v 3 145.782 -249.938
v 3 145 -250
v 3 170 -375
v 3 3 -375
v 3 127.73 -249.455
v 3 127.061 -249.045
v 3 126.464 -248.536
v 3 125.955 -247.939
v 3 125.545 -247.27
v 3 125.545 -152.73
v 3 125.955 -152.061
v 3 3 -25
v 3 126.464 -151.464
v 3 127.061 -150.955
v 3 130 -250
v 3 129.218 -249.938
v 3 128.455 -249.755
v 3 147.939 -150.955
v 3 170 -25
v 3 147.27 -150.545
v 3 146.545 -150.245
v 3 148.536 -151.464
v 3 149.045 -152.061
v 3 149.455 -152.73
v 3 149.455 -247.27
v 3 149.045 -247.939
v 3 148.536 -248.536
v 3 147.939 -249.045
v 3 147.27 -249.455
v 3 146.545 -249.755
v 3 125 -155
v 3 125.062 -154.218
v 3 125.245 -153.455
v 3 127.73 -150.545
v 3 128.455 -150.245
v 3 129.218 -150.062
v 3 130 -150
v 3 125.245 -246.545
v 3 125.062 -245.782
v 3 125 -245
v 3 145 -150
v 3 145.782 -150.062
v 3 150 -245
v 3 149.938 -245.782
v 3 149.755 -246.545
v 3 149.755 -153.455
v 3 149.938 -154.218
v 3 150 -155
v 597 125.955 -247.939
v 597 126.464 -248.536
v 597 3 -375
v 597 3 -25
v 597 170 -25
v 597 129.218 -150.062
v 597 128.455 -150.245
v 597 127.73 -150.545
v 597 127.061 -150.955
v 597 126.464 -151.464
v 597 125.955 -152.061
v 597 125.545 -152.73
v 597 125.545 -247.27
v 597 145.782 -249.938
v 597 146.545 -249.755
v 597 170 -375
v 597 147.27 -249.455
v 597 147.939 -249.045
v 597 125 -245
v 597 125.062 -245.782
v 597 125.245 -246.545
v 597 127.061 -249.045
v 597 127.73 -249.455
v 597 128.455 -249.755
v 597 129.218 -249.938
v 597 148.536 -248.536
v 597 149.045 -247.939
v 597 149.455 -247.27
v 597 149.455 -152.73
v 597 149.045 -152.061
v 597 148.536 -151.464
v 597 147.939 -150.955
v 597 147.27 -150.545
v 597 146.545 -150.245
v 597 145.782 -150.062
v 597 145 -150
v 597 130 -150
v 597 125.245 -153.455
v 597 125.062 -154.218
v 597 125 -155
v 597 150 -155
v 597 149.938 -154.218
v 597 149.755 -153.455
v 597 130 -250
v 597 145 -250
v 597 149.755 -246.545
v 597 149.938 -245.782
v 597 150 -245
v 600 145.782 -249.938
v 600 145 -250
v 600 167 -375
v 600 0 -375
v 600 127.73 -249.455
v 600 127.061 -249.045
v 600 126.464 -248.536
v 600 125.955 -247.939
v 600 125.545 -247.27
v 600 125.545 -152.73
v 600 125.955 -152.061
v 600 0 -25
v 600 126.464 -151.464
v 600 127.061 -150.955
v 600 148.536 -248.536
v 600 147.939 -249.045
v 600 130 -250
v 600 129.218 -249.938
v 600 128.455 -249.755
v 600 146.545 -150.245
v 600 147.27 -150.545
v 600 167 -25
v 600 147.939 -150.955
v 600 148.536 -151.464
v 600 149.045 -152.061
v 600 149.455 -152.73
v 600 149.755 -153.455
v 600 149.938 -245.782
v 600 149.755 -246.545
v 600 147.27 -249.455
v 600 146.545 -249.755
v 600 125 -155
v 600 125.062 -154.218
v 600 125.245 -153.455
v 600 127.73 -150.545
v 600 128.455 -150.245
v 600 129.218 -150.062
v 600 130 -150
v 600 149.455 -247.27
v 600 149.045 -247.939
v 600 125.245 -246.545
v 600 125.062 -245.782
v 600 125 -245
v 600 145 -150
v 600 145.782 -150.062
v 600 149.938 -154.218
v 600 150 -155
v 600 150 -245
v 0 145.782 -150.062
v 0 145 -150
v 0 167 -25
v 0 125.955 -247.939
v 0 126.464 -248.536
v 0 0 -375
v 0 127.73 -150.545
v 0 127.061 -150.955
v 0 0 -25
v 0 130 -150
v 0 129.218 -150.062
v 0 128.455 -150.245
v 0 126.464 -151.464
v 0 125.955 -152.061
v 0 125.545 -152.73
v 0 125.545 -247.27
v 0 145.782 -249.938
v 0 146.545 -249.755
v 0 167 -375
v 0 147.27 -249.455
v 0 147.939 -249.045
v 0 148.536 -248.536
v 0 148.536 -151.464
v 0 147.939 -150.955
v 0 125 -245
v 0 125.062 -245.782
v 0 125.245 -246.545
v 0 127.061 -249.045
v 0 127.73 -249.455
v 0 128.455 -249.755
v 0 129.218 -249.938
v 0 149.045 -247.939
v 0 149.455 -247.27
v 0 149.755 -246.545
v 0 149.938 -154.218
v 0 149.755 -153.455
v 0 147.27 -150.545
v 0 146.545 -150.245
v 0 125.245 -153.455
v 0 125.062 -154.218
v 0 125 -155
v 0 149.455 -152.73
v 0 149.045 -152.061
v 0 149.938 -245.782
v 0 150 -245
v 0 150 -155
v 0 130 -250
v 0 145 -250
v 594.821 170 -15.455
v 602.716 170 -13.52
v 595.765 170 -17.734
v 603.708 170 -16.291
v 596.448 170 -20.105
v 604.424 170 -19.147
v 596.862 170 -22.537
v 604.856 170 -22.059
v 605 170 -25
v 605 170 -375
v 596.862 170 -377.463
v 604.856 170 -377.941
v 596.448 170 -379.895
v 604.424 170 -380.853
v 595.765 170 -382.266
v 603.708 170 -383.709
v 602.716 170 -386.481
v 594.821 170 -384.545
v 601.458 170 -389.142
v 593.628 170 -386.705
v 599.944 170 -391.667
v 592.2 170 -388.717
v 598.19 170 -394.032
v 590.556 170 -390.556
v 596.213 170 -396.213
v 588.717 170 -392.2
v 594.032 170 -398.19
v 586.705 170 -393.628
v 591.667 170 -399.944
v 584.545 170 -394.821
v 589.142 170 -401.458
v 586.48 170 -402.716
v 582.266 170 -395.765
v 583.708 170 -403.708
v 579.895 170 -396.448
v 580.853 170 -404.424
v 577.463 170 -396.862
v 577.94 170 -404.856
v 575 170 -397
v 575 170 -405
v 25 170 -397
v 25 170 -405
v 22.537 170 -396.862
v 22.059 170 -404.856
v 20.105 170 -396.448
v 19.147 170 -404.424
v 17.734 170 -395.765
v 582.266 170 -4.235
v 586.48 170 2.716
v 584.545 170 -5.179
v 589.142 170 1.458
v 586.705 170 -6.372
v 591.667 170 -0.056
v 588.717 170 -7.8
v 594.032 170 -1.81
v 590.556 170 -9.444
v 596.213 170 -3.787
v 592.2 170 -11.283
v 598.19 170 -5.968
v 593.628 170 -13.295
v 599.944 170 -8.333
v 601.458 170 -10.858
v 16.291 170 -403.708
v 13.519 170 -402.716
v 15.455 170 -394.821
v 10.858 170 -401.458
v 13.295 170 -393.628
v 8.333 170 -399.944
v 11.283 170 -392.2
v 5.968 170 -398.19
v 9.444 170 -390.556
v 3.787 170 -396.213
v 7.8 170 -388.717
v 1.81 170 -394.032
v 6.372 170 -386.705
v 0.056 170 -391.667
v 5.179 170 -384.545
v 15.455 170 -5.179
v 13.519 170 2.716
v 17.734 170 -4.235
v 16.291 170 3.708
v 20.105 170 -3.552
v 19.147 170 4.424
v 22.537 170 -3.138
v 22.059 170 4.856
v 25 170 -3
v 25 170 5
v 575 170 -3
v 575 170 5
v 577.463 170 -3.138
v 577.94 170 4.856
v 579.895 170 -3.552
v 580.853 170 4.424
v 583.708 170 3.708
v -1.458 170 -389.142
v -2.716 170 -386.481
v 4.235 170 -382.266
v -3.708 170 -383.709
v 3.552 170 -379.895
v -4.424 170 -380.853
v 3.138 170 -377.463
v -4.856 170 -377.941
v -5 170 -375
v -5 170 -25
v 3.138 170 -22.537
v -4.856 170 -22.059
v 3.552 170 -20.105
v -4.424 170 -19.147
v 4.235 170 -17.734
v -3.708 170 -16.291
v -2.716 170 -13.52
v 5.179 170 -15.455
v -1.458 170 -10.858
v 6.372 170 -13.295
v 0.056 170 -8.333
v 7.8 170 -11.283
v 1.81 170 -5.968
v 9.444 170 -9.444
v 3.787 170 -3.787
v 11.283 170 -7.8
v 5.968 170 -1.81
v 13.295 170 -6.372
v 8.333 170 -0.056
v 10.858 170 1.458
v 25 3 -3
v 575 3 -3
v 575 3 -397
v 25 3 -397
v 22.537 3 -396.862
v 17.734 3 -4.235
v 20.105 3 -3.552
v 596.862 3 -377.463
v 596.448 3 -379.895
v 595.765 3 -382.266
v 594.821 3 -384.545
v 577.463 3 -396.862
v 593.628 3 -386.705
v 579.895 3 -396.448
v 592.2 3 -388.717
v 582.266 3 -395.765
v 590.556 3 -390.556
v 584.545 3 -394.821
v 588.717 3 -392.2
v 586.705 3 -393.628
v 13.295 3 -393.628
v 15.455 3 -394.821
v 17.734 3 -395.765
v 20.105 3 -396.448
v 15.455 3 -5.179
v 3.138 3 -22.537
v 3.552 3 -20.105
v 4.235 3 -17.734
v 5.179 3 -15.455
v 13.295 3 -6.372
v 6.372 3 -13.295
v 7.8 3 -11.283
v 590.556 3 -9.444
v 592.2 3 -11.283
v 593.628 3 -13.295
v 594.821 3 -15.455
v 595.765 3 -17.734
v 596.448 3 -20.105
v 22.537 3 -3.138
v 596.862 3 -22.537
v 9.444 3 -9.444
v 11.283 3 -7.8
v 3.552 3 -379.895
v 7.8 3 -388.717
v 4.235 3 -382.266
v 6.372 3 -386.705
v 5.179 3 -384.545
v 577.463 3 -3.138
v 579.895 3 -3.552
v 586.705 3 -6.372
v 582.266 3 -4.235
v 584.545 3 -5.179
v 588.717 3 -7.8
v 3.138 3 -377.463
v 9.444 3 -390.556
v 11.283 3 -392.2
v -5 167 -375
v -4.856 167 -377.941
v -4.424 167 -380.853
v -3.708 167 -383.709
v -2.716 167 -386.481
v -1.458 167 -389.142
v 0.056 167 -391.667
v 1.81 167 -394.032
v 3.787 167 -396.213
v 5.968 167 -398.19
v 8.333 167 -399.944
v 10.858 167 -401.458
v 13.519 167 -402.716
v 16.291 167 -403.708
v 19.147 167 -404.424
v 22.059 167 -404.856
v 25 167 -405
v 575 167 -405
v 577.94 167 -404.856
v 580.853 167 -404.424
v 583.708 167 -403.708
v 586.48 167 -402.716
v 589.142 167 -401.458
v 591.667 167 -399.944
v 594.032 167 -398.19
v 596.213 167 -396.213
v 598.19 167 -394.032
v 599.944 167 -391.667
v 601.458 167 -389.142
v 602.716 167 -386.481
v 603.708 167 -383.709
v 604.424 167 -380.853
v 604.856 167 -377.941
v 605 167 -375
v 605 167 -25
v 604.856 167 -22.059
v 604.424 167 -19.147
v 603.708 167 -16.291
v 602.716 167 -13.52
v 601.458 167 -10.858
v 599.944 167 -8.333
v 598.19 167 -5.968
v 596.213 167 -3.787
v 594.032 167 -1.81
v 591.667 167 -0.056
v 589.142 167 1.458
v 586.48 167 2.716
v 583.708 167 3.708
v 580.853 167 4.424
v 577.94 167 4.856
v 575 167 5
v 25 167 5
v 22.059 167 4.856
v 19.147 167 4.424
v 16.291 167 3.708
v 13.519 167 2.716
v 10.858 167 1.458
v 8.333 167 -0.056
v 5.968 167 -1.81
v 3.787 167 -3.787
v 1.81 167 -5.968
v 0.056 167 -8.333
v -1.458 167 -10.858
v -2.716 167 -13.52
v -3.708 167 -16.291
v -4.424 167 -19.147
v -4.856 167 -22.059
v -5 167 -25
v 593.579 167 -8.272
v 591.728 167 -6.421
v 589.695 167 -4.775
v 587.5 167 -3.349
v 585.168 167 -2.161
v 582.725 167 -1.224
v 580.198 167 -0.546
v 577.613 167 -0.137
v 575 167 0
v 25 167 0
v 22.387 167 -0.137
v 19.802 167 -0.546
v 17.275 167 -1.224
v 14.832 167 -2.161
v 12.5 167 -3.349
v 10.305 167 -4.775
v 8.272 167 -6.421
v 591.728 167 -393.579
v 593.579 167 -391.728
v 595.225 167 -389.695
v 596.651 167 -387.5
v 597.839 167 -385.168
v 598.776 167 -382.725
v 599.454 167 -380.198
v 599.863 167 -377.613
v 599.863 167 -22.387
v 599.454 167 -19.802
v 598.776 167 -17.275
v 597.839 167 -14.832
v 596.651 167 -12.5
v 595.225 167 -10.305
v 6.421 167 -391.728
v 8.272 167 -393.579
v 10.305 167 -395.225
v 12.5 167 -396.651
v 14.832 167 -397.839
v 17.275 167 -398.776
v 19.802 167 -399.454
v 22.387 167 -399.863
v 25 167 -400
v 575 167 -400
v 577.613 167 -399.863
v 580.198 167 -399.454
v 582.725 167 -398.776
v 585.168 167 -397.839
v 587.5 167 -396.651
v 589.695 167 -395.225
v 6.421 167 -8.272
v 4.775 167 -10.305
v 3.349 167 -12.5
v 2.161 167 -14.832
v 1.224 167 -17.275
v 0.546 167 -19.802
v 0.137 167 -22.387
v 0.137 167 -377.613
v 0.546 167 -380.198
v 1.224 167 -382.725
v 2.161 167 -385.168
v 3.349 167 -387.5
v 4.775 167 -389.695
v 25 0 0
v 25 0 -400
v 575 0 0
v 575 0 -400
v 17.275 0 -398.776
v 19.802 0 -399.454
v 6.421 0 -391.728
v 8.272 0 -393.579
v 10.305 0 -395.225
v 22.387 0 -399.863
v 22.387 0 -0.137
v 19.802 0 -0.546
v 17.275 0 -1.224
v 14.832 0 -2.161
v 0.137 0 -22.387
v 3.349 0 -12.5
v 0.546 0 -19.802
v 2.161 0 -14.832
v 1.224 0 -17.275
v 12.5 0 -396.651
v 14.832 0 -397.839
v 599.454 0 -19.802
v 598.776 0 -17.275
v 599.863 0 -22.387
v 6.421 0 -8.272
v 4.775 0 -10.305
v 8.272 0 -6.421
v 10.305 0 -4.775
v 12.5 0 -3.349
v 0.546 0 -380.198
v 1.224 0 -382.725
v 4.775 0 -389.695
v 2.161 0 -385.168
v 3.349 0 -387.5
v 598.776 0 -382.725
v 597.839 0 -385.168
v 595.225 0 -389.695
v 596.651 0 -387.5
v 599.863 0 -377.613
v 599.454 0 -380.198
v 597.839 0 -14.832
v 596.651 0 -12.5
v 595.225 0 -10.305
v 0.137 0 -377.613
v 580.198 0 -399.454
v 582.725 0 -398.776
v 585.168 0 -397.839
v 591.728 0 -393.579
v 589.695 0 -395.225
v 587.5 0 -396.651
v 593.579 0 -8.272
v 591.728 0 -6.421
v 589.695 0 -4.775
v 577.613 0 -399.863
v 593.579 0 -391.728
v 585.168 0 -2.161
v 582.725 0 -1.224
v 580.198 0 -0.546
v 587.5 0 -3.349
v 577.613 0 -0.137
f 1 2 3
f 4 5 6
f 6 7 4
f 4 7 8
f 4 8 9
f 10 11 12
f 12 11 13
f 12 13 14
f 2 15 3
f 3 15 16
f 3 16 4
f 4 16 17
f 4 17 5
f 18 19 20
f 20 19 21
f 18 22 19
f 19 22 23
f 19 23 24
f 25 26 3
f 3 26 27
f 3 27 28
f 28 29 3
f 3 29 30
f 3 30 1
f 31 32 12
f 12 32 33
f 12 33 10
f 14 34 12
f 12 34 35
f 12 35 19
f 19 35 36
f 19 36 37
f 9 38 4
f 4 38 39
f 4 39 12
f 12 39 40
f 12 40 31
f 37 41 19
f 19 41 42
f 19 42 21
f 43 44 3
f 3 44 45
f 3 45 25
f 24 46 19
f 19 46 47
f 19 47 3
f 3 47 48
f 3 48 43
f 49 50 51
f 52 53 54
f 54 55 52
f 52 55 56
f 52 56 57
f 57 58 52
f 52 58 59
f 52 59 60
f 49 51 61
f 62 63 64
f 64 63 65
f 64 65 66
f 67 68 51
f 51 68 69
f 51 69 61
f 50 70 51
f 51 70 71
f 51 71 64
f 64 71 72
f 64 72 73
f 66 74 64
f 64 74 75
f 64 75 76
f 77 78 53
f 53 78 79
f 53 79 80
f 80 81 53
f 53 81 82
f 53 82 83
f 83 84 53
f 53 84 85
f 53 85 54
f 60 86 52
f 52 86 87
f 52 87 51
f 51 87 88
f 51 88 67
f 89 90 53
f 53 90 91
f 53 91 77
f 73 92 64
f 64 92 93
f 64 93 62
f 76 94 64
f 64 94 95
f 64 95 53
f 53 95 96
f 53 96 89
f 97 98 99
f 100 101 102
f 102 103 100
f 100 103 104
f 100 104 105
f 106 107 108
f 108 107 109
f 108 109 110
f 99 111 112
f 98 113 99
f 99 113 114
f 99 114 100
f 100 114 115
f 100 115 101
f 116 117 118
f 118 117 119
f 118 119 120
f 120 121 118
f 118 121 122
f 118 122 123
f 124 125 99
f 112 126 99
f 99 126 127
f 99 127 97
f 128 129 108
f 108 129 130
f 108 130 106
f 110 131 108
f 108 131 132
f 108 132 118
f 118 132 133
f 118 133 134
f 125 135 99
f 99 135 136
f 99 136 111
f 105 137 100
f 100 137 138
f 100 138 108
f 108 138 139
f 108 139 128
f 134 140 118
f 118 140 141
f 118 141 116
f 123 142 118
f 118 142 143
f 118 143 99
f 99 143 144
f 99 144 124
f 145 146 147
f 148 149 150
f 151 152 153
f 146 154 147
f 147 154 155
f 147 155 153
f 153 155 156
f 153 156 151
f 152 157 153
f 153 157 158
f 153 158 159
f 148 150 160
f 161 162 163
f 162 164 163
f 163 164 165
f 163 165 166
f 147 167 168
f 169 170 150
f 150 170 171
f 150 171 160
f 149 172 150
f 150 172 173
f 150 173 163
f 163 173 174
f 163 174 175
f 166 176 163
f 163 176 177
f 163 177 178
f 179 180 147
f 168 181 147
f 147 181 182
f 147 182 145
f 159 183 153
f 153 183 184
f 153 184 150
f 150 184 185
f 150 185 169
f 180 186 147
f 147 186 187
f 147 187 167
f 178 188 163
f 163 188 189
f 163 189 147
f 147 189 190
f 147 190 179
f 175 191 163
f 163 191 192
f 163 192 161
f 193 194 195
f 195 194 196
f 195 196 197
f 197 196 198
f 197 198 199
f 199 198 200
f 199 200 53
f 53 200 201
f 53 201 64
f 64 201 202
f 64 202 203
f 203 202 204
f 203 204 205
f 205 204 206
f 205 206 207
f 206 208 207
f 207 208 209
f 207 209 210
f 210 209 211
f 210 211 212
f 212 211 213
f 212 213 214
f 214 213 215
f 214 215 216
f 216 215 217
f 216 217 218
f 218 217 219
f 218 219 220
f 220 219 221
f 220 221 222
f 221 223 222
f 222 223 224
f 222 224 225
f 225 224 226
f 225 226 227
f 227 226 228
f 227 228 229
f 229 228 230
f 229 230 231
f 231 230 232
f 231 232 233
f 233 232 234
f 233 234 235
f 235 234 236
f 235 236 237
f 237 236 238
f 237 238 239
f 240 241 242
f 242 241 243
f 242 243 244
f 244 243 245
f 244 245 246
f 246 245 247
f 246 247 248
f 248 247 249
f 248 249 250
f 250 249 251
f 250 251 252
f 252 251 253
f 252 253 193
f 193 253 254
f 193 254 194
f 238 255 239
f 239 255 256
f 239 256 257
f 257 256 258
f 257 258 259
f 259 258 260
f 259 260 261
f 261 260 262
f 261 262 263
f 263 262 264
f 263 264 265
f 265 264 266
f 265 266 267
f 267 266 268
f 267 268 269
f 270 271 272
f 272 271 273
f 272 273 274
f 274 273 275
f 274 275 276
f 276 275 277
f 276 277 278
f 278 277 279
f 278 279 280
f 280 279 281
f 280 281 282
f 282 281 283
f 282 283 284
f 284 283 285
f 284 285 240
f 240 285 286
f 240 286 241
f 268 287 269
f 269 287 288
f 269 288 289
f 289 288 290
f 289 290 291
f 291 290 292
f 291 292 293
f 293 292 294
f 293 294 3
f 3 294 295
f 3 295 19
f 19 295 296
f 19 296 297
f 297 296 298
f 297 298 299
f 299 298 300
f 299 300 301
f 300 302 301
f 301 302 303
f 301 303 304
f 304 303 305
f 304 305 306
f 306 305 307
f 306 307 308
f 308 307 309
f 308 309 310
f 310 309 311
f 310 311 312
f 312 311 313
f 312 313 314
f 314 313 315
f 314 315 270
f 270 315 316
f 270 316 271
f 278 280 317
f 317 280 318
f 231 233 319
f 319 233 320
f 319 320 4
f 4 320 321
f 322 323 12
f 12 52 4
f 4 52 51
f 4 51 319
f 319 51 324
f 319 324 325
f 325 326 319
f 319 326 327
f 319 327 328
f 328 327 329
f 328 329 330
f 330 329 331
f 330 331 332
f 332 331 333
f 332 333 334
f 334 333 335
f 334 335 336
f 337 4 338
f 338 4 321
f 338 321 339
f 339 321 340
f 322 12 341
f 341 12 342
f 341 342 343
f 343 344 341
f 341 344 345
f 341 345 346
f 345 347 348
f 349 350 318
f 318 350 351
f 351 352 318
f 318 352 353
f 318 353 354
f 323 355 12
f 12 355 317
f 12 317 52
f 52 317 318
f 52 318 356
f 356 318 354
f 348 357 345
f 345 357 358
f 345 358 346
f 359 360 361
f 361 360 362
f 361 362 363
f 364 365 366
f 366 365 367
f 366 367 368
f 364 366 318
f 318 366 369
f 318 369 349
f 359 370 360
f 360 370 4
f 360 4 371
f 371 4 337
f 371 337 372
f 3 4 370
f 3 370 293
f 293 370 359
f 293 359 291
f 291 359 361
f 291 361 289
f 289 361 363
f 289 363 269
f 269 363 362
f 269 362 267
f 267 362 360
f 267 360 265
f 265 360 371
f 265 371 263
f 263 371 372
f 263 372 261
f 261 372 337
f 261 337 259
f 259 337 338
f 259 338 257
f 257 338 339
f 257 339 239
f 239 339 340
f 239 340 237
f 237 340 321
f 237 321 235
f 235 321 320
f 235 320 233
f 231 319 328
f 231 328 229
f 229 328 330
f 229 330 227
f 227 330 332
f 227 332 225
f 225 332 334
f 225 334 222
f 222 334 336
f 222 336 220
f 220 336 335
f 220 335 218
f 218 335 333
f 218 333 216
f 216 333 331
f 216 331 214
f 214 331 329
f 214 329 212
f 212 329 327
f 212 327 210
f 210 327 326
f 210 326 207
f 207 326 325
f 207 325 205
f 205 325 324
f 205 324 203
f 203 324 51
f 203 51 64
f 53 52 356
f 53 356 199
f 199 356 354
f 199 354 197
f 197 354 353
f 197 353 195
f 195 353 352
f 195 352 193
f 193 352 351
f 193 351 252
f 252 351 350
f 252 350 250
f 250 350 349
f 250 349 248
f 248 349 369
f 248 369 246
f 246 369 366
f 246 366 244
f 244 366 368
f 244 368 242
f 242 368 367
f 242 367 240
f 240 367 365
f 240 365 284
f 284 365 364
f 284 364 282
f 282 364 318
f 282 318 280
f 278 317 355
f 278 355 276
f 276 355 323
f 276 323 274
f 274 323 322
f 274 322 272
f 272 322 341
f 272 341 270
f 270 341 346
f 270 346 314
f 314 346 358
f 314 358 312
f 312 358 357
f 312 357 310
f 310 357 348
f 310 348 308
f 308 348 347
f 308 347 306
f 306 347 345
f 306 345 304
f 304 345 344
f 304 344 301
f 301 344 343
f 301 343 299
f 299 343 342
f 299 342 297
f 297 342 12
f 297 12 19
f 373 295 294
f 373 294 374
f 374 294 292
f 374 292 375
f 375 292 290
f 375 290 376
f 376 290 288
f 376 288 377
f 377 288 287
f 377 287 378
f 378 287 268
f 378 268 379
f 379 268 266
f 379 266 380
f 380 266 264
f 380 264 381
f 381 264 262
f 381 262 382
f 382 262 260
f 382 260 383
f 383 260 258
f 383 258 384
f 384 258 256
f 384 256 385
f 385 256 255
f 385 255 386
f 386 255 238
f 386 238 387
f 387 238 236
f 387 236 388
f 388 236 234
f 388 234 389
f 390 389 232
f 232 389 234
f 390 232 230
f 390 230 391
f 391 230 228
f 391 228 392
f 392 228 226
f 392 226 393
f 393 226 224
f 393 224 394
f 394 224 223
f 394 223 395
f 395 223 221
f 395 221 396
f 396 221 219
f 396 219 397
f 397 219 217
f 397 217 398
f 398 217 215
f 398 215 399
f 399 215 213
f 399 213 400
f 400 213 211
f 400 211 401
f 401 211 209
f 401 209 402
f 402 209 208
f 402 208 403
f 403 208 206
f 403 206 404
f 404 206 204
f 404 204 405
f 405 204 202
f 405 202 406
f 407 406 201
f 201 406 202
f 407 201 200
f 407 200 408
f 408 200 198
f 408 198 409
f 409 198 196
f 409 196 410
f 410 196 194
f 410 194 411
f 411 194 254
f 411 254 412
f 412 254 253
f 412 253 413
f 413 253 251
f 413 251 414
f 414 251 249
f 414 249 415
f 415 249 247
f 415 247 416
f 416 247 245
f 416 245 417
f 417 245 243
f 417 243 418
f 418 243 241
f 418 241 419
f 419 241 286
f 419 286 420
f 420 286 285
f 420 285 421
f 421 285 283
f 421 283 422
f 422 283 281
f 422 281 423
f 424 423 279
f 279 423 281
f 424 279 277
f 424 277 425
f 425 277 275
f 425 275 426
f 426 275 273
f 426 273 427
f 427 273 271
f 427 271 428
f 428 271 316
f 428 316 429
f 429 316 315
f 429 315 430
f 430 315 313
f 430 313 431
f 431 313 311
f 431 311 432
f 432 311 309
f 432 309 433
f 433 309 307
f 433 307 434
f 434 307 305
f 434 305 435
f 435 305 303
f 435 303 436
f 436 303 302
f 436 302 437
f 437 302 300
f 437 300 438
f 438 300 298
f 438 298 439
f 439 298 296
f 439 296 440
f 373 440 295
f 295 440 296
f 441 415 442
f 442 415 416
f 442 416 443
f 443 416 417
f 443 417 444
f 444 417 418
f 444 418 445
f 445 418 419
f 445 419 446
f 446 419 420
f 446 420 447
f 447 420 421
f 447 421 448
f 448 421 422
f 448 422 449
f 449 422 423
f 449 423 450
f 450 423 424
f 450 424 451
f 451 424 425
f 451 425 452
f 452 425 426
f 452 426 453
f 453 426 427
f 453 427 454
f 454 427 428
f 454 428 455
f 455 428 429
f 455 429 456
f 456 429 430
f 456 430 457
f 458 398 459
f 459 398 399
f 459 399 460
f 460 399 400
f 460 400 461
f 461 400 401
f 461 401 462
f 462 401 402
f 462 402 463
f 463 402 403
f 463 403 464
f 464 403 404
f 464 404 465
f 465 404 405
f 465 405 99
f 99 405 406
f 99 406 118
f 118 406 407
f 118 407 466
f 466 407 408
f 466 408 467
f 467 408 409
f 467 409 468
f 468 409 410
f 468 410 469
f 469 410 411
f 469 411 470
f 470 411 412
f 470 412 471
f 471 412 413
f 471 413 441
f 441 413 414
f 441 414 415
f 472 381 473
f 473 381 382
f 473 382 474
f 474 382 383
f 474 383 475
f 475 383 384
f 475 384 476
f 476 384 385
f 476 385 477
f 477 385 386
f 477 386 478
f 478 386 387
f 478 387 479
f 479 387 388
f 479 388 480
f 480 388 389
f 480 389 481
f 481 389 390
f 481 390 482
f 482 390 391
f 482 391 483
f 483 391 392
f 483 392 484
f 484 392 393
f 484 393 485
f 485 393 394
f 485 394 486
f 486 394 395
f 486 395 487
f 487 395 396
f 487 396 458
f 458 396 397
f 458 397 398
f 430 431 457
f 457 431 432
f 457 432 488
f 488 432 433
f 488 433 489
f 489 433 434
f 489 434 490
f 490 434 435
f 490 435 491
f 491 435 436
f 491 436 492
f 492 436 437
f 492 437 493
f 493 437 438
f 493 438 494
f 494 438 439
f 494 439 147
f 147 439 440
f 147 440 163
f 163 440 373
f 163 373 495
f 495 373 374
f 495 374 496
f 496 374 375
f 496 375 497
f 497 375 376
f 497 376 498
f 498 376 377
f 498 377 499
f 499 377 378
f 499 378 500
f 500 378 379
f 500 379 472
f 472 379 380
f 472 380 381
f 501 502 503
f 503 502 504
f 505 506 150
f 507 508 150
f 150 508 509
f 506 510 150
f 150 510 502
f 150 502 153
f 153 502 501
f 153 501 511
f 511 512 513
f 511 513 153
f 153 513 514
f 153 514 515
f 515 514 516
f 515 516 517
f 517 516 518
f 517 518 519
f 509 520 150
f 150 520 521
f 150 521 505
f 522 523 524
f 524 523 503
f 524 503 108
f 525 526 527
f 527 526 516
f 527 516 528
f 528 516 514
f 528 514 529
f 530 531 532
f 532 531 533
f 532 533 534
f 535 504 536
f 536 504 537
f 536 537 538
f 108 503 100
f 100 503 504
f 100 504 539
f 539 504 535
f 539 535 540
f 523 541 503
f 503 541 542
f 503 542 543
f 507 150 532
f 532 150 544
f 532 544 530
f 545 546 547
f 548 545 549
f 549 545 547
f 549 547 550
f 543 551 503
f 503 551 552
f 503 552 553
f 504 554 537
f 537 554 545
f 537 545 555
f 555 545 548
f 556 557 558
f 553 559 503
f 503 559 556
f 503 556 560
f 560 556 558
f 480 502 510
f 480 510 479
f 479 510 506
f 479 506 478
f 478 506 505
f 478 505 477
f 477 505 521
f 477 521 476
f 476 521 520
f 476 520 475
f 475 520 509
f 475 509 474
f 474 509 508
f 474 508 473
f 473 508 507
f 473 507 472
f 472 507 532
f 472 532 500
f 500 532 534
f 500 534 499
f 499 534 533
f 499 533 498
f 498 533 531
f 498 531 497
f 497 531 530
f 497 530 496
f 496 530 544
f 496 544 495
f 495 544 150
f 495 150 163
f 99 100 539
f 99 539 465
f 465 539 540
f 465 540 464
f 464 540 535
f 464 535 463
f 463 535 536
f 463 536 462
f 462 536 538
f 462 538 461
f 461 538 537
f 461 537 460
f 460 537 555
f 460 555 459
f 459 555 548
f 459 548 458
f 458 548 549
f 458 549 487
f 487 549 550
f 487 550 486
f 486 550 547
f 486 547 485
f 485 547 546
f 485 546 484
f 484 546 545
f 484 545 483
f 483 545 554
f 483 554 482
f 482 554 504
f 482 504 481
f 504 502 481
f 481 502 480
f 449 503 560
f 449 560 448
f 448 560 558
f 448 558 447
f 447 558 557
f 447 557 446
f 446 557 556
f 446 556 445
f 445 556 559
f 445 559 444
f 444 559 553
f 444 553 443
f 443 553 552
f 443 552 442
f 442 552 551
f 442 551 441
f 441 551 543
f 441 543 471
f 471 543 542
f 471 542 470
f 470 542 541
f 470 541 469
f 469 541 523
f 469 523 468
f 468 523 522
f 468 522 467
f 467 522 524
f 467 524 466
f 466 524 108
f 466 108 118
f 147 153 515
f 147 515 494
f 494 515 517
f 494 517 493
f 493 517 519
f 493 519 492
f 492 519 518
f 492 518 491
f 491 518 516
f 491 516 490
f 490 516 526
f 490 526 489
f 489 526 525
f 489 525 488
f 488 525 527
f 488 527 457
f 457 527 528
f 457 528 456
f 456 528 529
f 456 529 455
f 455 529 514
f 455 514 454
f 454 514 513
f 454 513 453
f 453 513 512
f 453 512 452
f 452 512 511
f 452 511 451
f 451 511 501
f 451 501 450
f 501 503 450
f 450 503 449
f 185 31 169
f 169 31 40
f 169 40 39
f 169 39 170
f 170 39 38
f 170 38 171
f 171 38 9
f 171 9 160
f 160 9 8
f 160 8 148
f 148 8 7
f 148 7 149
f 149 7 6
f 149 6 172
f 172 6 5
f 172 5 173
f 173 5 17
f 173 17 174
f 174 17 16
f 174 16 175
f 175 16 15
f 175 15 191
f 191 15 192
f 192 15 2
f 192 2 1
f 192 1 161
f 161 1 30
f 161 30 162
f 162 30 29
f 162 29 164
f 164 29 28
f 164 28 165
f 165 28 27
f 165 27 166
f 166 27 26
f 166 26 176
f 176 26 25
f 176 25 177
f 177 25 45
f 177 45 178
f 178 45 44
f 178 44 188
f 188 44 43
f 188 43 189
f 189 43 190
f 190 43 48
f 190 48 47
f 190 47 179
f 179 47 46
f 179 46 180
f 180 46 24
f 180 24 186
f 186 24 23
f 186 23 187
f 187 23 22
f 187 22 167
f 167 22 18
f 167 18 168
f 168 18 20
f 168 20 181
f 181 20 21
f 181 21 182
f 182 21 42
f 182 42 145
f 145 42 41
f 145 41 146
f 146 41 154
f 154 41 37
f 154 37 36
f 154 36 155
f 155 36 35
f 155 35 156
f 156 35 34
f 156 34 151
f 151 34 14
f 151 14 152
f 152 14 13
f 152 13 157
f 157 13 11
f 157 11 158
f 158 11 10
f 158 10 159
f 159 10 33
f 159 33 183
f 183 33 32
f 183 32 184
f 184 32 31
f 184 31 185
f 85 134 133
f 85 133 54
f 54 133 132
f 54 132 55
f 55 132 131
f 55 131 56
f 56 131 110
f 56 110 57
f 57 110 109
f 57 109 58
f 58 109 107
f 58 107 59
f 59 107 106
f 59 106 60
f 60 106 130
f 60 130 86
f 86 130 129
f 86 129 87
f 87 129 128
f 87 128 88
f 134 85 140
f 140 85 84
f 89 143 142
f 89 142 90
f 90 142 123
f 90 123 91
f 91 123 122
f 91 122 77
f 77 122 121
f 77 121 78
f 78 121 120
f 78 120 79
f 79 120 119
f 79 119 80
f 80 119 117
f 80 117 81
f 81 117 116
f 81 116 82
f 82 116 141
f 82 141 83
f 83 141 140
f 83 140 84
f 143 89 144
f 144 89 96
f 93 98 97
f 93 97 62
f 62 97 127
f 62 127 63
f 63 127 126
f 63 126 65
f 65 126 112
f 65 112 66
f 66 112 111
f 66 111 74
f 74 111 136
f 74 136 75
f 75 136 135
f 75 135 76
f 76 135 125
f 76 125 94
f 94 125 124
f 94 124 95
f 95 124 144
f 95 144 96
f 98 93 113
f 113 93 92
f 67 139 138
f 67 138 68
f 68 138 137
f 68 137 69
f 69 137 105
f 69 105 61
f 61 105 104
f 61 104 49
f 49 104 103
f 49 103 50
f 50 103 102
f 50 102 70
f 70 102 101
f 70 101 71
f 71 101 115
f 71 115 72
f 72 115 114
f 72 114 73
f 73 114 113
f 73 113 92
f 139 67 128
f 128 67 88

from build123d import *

# Parameters (mm, degrees)
SKETCH1_W               = 600
SKETCH1_H               = 400
BOSS_EXTRUDE1_DEPTH     = 170
FILLET1_R               = 25
SHELL1_T                = -3
EXTRUDE_THIN1_DEPTH     = 3
CUT_EXTRUDE2_DEPTH      = 1000
CUT_EXTRUDE2_DEPTH_BACK = 1000


with BuildPart() as part:
    # Sketch1 → Boss-Extrude1 (new body)
    with BuildSketch(Plane(origin=(0, 0, 0), x_dir=(1, 0, 0), z_dir=(0, 1, 0))):
        with Locations((300, 200)):
            Rectangle(SKETCH1_W, SKETCH1_H)
    extrude(amount=BOSS_EXTRUDE1_DEPTH)

    # Fillet1
    fillet1_edges = [part.edges().sort_by_distance(p)[0] for p in [
        (0, 85, -400),
        (600, 85, -400),
        (600, 85, 0),
        (0, 85, 0),
    ]]
    fillet(fillet1_edges, radius=FILLET1_R)

    # Shell1
    shell1_openings = [part.faces().sort_by_distance(p)[0] for p in [
        (300, 170, -200),
    ]]
    offset(amount=SHELL1_T, openings=shell1_openings, kind=Kind.INTERSECTION)

    # Sketch2 → Extrude-Thin1 (add)
    with BuildSketch(Plane(origin=(0, 170, 0), x_dir=(1, 0, 0), z_dir=(0, 1, 0))):
        with BuildLine():
            Line((-5, 25), (-5, 375))
            ThreePointArc((-5, 375), (3.786796564, 396.213203436), (25, 405))
            Line((25, 405), (575, 405))
            ThreePointArc((575, 405), (596.213203436, 396.213203436), (605, 375))
            Line((605, 375), (605, 25))
            ThreePointArc((605, 25), (596.213203436, 3.786796564), (575, -5))
            Line((575, -5), (25, -5))
            ThreePointArc((25, -5), (3.786796564, 3.786796564), (-5, 25))
        make_face()
        with BuildLine():
            Line((0, 25), (0, 375))
            ThreePointArc((0, 375), (7.32233047, 392.67766953), (25, 400))
            Line((25, 400), (575, 400))
            ThreePointArc((575, 400), (592.67766953, 392.67766953), (600, 375))
            Line((600, 375), (600, 25))
            ThreePointArc((600, 25), (592.67766953, 7.32233047), (575, 0))
            Line((575, 0), (25, 0))
            ThreePointArc((25, 0), (7.32233047, 7.32233047), (0, 25))
        make_face(mode=Mode.SUBTRACT)
    extrude(amount=-EXTRUDE_THIN1_DEPTH)

    # Sketch4 → Cut-Extrude2 (cut, two sides)
    with BuildSketch(Plane.ZY) as cut_extrude2_sk:
        with BuildLine():
            Line((-200, 150), (-155, 150))
            ThreePointArc((-155, 150), (-151.464466094, 148.535533906), (-150, 145))
            Line((-150, 145), (-150, 130))
            ThreePointArc((-150, 130), (-151.464466094, 126.464466094), (-155, 125))
            Line((-155, 125), (-245, 125))
            ThreePointArc((-245, 125), (-248.535533906, 126.464466094), (-250, 130))
            Line((-250, 130), (-250, 145))
            ThreePointArc((-250, 145), (-248.535533906, 148.535533906), (-245, 150))
            Line((-245, 150), (-200, 150))
        make_face()
    extrude(amount=CUT_EXTRUDE2_DEPTH, mode=Mode.SUBTRACT)
    extrude(cut_extrude2_sk.sketch, amount=-CUT_EXTRUDE2_DEPTH_BACK, mode=Mode.SUBTRACT)


solid = part.part
